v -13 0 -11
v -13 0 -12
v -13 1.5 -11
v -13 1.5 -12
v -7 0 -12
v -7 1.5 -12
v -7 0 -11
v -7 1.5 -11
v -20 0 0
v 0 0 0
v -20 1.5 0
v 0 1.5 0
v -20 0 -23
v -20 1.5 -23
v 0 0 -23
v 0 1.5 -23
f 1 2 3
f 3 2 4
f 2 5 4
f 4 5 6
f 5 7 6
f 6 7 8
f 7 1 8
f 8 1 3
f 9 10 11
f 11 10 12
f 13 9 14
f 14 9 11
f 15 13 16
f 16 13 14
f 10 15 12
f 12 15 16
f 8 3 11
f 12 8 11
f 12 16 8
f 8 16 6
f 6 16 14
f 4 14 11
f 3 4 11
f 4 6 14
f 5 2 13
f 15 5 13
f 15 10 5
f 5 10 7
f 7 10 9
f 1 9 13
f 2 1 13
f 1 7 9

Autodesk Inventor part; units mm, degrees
ref_plane "YZ Plane" through (0, 0, 0) normal (1, 0, 0) x (0, 1, 0)
ref_plane "XZ Plane" through (0, 0, 0) normal (0, 1, 0) x (-1, 0, 0)
ref_plane "XY Plane" through (0, 0, 0) normal (0, 0, 1) x (1, 0, 0)
sketch "Sketch1" plane through (0, 0, 0) normal (0, 1, 0) x (-1, 0, 0)
  line L0 (0, 0) -> (0, -23)
  line L1 (0, -23) -> (20, -23)
  line L2 (20, -23) -> (20, 0)
  line L3 (16.0214, -11.5) -> (3.8301, -11.5) construction
  line L4 (20, 0) -> (0, 0)
  line L5 (13, -11) -> (7, -11)
  line L6 (7, -11) -> (7, -12)
  line L7 (7, -12) -> (13, -12)
  line L8 (13, -12) -> (13, -11)
  line L9 (10, -8) -> (10, -15) construction
  dimension "d0" = 23
  dimension "d10" = 20
  dimension "d13" = 10
  dimension "d14" = 1
  dimension "d15" = 6
extrude "Extrusion4" add sketch "Sketch1" along normal blind 1.5
properties part number "Distance_test_adaptor_slit_1mm"
